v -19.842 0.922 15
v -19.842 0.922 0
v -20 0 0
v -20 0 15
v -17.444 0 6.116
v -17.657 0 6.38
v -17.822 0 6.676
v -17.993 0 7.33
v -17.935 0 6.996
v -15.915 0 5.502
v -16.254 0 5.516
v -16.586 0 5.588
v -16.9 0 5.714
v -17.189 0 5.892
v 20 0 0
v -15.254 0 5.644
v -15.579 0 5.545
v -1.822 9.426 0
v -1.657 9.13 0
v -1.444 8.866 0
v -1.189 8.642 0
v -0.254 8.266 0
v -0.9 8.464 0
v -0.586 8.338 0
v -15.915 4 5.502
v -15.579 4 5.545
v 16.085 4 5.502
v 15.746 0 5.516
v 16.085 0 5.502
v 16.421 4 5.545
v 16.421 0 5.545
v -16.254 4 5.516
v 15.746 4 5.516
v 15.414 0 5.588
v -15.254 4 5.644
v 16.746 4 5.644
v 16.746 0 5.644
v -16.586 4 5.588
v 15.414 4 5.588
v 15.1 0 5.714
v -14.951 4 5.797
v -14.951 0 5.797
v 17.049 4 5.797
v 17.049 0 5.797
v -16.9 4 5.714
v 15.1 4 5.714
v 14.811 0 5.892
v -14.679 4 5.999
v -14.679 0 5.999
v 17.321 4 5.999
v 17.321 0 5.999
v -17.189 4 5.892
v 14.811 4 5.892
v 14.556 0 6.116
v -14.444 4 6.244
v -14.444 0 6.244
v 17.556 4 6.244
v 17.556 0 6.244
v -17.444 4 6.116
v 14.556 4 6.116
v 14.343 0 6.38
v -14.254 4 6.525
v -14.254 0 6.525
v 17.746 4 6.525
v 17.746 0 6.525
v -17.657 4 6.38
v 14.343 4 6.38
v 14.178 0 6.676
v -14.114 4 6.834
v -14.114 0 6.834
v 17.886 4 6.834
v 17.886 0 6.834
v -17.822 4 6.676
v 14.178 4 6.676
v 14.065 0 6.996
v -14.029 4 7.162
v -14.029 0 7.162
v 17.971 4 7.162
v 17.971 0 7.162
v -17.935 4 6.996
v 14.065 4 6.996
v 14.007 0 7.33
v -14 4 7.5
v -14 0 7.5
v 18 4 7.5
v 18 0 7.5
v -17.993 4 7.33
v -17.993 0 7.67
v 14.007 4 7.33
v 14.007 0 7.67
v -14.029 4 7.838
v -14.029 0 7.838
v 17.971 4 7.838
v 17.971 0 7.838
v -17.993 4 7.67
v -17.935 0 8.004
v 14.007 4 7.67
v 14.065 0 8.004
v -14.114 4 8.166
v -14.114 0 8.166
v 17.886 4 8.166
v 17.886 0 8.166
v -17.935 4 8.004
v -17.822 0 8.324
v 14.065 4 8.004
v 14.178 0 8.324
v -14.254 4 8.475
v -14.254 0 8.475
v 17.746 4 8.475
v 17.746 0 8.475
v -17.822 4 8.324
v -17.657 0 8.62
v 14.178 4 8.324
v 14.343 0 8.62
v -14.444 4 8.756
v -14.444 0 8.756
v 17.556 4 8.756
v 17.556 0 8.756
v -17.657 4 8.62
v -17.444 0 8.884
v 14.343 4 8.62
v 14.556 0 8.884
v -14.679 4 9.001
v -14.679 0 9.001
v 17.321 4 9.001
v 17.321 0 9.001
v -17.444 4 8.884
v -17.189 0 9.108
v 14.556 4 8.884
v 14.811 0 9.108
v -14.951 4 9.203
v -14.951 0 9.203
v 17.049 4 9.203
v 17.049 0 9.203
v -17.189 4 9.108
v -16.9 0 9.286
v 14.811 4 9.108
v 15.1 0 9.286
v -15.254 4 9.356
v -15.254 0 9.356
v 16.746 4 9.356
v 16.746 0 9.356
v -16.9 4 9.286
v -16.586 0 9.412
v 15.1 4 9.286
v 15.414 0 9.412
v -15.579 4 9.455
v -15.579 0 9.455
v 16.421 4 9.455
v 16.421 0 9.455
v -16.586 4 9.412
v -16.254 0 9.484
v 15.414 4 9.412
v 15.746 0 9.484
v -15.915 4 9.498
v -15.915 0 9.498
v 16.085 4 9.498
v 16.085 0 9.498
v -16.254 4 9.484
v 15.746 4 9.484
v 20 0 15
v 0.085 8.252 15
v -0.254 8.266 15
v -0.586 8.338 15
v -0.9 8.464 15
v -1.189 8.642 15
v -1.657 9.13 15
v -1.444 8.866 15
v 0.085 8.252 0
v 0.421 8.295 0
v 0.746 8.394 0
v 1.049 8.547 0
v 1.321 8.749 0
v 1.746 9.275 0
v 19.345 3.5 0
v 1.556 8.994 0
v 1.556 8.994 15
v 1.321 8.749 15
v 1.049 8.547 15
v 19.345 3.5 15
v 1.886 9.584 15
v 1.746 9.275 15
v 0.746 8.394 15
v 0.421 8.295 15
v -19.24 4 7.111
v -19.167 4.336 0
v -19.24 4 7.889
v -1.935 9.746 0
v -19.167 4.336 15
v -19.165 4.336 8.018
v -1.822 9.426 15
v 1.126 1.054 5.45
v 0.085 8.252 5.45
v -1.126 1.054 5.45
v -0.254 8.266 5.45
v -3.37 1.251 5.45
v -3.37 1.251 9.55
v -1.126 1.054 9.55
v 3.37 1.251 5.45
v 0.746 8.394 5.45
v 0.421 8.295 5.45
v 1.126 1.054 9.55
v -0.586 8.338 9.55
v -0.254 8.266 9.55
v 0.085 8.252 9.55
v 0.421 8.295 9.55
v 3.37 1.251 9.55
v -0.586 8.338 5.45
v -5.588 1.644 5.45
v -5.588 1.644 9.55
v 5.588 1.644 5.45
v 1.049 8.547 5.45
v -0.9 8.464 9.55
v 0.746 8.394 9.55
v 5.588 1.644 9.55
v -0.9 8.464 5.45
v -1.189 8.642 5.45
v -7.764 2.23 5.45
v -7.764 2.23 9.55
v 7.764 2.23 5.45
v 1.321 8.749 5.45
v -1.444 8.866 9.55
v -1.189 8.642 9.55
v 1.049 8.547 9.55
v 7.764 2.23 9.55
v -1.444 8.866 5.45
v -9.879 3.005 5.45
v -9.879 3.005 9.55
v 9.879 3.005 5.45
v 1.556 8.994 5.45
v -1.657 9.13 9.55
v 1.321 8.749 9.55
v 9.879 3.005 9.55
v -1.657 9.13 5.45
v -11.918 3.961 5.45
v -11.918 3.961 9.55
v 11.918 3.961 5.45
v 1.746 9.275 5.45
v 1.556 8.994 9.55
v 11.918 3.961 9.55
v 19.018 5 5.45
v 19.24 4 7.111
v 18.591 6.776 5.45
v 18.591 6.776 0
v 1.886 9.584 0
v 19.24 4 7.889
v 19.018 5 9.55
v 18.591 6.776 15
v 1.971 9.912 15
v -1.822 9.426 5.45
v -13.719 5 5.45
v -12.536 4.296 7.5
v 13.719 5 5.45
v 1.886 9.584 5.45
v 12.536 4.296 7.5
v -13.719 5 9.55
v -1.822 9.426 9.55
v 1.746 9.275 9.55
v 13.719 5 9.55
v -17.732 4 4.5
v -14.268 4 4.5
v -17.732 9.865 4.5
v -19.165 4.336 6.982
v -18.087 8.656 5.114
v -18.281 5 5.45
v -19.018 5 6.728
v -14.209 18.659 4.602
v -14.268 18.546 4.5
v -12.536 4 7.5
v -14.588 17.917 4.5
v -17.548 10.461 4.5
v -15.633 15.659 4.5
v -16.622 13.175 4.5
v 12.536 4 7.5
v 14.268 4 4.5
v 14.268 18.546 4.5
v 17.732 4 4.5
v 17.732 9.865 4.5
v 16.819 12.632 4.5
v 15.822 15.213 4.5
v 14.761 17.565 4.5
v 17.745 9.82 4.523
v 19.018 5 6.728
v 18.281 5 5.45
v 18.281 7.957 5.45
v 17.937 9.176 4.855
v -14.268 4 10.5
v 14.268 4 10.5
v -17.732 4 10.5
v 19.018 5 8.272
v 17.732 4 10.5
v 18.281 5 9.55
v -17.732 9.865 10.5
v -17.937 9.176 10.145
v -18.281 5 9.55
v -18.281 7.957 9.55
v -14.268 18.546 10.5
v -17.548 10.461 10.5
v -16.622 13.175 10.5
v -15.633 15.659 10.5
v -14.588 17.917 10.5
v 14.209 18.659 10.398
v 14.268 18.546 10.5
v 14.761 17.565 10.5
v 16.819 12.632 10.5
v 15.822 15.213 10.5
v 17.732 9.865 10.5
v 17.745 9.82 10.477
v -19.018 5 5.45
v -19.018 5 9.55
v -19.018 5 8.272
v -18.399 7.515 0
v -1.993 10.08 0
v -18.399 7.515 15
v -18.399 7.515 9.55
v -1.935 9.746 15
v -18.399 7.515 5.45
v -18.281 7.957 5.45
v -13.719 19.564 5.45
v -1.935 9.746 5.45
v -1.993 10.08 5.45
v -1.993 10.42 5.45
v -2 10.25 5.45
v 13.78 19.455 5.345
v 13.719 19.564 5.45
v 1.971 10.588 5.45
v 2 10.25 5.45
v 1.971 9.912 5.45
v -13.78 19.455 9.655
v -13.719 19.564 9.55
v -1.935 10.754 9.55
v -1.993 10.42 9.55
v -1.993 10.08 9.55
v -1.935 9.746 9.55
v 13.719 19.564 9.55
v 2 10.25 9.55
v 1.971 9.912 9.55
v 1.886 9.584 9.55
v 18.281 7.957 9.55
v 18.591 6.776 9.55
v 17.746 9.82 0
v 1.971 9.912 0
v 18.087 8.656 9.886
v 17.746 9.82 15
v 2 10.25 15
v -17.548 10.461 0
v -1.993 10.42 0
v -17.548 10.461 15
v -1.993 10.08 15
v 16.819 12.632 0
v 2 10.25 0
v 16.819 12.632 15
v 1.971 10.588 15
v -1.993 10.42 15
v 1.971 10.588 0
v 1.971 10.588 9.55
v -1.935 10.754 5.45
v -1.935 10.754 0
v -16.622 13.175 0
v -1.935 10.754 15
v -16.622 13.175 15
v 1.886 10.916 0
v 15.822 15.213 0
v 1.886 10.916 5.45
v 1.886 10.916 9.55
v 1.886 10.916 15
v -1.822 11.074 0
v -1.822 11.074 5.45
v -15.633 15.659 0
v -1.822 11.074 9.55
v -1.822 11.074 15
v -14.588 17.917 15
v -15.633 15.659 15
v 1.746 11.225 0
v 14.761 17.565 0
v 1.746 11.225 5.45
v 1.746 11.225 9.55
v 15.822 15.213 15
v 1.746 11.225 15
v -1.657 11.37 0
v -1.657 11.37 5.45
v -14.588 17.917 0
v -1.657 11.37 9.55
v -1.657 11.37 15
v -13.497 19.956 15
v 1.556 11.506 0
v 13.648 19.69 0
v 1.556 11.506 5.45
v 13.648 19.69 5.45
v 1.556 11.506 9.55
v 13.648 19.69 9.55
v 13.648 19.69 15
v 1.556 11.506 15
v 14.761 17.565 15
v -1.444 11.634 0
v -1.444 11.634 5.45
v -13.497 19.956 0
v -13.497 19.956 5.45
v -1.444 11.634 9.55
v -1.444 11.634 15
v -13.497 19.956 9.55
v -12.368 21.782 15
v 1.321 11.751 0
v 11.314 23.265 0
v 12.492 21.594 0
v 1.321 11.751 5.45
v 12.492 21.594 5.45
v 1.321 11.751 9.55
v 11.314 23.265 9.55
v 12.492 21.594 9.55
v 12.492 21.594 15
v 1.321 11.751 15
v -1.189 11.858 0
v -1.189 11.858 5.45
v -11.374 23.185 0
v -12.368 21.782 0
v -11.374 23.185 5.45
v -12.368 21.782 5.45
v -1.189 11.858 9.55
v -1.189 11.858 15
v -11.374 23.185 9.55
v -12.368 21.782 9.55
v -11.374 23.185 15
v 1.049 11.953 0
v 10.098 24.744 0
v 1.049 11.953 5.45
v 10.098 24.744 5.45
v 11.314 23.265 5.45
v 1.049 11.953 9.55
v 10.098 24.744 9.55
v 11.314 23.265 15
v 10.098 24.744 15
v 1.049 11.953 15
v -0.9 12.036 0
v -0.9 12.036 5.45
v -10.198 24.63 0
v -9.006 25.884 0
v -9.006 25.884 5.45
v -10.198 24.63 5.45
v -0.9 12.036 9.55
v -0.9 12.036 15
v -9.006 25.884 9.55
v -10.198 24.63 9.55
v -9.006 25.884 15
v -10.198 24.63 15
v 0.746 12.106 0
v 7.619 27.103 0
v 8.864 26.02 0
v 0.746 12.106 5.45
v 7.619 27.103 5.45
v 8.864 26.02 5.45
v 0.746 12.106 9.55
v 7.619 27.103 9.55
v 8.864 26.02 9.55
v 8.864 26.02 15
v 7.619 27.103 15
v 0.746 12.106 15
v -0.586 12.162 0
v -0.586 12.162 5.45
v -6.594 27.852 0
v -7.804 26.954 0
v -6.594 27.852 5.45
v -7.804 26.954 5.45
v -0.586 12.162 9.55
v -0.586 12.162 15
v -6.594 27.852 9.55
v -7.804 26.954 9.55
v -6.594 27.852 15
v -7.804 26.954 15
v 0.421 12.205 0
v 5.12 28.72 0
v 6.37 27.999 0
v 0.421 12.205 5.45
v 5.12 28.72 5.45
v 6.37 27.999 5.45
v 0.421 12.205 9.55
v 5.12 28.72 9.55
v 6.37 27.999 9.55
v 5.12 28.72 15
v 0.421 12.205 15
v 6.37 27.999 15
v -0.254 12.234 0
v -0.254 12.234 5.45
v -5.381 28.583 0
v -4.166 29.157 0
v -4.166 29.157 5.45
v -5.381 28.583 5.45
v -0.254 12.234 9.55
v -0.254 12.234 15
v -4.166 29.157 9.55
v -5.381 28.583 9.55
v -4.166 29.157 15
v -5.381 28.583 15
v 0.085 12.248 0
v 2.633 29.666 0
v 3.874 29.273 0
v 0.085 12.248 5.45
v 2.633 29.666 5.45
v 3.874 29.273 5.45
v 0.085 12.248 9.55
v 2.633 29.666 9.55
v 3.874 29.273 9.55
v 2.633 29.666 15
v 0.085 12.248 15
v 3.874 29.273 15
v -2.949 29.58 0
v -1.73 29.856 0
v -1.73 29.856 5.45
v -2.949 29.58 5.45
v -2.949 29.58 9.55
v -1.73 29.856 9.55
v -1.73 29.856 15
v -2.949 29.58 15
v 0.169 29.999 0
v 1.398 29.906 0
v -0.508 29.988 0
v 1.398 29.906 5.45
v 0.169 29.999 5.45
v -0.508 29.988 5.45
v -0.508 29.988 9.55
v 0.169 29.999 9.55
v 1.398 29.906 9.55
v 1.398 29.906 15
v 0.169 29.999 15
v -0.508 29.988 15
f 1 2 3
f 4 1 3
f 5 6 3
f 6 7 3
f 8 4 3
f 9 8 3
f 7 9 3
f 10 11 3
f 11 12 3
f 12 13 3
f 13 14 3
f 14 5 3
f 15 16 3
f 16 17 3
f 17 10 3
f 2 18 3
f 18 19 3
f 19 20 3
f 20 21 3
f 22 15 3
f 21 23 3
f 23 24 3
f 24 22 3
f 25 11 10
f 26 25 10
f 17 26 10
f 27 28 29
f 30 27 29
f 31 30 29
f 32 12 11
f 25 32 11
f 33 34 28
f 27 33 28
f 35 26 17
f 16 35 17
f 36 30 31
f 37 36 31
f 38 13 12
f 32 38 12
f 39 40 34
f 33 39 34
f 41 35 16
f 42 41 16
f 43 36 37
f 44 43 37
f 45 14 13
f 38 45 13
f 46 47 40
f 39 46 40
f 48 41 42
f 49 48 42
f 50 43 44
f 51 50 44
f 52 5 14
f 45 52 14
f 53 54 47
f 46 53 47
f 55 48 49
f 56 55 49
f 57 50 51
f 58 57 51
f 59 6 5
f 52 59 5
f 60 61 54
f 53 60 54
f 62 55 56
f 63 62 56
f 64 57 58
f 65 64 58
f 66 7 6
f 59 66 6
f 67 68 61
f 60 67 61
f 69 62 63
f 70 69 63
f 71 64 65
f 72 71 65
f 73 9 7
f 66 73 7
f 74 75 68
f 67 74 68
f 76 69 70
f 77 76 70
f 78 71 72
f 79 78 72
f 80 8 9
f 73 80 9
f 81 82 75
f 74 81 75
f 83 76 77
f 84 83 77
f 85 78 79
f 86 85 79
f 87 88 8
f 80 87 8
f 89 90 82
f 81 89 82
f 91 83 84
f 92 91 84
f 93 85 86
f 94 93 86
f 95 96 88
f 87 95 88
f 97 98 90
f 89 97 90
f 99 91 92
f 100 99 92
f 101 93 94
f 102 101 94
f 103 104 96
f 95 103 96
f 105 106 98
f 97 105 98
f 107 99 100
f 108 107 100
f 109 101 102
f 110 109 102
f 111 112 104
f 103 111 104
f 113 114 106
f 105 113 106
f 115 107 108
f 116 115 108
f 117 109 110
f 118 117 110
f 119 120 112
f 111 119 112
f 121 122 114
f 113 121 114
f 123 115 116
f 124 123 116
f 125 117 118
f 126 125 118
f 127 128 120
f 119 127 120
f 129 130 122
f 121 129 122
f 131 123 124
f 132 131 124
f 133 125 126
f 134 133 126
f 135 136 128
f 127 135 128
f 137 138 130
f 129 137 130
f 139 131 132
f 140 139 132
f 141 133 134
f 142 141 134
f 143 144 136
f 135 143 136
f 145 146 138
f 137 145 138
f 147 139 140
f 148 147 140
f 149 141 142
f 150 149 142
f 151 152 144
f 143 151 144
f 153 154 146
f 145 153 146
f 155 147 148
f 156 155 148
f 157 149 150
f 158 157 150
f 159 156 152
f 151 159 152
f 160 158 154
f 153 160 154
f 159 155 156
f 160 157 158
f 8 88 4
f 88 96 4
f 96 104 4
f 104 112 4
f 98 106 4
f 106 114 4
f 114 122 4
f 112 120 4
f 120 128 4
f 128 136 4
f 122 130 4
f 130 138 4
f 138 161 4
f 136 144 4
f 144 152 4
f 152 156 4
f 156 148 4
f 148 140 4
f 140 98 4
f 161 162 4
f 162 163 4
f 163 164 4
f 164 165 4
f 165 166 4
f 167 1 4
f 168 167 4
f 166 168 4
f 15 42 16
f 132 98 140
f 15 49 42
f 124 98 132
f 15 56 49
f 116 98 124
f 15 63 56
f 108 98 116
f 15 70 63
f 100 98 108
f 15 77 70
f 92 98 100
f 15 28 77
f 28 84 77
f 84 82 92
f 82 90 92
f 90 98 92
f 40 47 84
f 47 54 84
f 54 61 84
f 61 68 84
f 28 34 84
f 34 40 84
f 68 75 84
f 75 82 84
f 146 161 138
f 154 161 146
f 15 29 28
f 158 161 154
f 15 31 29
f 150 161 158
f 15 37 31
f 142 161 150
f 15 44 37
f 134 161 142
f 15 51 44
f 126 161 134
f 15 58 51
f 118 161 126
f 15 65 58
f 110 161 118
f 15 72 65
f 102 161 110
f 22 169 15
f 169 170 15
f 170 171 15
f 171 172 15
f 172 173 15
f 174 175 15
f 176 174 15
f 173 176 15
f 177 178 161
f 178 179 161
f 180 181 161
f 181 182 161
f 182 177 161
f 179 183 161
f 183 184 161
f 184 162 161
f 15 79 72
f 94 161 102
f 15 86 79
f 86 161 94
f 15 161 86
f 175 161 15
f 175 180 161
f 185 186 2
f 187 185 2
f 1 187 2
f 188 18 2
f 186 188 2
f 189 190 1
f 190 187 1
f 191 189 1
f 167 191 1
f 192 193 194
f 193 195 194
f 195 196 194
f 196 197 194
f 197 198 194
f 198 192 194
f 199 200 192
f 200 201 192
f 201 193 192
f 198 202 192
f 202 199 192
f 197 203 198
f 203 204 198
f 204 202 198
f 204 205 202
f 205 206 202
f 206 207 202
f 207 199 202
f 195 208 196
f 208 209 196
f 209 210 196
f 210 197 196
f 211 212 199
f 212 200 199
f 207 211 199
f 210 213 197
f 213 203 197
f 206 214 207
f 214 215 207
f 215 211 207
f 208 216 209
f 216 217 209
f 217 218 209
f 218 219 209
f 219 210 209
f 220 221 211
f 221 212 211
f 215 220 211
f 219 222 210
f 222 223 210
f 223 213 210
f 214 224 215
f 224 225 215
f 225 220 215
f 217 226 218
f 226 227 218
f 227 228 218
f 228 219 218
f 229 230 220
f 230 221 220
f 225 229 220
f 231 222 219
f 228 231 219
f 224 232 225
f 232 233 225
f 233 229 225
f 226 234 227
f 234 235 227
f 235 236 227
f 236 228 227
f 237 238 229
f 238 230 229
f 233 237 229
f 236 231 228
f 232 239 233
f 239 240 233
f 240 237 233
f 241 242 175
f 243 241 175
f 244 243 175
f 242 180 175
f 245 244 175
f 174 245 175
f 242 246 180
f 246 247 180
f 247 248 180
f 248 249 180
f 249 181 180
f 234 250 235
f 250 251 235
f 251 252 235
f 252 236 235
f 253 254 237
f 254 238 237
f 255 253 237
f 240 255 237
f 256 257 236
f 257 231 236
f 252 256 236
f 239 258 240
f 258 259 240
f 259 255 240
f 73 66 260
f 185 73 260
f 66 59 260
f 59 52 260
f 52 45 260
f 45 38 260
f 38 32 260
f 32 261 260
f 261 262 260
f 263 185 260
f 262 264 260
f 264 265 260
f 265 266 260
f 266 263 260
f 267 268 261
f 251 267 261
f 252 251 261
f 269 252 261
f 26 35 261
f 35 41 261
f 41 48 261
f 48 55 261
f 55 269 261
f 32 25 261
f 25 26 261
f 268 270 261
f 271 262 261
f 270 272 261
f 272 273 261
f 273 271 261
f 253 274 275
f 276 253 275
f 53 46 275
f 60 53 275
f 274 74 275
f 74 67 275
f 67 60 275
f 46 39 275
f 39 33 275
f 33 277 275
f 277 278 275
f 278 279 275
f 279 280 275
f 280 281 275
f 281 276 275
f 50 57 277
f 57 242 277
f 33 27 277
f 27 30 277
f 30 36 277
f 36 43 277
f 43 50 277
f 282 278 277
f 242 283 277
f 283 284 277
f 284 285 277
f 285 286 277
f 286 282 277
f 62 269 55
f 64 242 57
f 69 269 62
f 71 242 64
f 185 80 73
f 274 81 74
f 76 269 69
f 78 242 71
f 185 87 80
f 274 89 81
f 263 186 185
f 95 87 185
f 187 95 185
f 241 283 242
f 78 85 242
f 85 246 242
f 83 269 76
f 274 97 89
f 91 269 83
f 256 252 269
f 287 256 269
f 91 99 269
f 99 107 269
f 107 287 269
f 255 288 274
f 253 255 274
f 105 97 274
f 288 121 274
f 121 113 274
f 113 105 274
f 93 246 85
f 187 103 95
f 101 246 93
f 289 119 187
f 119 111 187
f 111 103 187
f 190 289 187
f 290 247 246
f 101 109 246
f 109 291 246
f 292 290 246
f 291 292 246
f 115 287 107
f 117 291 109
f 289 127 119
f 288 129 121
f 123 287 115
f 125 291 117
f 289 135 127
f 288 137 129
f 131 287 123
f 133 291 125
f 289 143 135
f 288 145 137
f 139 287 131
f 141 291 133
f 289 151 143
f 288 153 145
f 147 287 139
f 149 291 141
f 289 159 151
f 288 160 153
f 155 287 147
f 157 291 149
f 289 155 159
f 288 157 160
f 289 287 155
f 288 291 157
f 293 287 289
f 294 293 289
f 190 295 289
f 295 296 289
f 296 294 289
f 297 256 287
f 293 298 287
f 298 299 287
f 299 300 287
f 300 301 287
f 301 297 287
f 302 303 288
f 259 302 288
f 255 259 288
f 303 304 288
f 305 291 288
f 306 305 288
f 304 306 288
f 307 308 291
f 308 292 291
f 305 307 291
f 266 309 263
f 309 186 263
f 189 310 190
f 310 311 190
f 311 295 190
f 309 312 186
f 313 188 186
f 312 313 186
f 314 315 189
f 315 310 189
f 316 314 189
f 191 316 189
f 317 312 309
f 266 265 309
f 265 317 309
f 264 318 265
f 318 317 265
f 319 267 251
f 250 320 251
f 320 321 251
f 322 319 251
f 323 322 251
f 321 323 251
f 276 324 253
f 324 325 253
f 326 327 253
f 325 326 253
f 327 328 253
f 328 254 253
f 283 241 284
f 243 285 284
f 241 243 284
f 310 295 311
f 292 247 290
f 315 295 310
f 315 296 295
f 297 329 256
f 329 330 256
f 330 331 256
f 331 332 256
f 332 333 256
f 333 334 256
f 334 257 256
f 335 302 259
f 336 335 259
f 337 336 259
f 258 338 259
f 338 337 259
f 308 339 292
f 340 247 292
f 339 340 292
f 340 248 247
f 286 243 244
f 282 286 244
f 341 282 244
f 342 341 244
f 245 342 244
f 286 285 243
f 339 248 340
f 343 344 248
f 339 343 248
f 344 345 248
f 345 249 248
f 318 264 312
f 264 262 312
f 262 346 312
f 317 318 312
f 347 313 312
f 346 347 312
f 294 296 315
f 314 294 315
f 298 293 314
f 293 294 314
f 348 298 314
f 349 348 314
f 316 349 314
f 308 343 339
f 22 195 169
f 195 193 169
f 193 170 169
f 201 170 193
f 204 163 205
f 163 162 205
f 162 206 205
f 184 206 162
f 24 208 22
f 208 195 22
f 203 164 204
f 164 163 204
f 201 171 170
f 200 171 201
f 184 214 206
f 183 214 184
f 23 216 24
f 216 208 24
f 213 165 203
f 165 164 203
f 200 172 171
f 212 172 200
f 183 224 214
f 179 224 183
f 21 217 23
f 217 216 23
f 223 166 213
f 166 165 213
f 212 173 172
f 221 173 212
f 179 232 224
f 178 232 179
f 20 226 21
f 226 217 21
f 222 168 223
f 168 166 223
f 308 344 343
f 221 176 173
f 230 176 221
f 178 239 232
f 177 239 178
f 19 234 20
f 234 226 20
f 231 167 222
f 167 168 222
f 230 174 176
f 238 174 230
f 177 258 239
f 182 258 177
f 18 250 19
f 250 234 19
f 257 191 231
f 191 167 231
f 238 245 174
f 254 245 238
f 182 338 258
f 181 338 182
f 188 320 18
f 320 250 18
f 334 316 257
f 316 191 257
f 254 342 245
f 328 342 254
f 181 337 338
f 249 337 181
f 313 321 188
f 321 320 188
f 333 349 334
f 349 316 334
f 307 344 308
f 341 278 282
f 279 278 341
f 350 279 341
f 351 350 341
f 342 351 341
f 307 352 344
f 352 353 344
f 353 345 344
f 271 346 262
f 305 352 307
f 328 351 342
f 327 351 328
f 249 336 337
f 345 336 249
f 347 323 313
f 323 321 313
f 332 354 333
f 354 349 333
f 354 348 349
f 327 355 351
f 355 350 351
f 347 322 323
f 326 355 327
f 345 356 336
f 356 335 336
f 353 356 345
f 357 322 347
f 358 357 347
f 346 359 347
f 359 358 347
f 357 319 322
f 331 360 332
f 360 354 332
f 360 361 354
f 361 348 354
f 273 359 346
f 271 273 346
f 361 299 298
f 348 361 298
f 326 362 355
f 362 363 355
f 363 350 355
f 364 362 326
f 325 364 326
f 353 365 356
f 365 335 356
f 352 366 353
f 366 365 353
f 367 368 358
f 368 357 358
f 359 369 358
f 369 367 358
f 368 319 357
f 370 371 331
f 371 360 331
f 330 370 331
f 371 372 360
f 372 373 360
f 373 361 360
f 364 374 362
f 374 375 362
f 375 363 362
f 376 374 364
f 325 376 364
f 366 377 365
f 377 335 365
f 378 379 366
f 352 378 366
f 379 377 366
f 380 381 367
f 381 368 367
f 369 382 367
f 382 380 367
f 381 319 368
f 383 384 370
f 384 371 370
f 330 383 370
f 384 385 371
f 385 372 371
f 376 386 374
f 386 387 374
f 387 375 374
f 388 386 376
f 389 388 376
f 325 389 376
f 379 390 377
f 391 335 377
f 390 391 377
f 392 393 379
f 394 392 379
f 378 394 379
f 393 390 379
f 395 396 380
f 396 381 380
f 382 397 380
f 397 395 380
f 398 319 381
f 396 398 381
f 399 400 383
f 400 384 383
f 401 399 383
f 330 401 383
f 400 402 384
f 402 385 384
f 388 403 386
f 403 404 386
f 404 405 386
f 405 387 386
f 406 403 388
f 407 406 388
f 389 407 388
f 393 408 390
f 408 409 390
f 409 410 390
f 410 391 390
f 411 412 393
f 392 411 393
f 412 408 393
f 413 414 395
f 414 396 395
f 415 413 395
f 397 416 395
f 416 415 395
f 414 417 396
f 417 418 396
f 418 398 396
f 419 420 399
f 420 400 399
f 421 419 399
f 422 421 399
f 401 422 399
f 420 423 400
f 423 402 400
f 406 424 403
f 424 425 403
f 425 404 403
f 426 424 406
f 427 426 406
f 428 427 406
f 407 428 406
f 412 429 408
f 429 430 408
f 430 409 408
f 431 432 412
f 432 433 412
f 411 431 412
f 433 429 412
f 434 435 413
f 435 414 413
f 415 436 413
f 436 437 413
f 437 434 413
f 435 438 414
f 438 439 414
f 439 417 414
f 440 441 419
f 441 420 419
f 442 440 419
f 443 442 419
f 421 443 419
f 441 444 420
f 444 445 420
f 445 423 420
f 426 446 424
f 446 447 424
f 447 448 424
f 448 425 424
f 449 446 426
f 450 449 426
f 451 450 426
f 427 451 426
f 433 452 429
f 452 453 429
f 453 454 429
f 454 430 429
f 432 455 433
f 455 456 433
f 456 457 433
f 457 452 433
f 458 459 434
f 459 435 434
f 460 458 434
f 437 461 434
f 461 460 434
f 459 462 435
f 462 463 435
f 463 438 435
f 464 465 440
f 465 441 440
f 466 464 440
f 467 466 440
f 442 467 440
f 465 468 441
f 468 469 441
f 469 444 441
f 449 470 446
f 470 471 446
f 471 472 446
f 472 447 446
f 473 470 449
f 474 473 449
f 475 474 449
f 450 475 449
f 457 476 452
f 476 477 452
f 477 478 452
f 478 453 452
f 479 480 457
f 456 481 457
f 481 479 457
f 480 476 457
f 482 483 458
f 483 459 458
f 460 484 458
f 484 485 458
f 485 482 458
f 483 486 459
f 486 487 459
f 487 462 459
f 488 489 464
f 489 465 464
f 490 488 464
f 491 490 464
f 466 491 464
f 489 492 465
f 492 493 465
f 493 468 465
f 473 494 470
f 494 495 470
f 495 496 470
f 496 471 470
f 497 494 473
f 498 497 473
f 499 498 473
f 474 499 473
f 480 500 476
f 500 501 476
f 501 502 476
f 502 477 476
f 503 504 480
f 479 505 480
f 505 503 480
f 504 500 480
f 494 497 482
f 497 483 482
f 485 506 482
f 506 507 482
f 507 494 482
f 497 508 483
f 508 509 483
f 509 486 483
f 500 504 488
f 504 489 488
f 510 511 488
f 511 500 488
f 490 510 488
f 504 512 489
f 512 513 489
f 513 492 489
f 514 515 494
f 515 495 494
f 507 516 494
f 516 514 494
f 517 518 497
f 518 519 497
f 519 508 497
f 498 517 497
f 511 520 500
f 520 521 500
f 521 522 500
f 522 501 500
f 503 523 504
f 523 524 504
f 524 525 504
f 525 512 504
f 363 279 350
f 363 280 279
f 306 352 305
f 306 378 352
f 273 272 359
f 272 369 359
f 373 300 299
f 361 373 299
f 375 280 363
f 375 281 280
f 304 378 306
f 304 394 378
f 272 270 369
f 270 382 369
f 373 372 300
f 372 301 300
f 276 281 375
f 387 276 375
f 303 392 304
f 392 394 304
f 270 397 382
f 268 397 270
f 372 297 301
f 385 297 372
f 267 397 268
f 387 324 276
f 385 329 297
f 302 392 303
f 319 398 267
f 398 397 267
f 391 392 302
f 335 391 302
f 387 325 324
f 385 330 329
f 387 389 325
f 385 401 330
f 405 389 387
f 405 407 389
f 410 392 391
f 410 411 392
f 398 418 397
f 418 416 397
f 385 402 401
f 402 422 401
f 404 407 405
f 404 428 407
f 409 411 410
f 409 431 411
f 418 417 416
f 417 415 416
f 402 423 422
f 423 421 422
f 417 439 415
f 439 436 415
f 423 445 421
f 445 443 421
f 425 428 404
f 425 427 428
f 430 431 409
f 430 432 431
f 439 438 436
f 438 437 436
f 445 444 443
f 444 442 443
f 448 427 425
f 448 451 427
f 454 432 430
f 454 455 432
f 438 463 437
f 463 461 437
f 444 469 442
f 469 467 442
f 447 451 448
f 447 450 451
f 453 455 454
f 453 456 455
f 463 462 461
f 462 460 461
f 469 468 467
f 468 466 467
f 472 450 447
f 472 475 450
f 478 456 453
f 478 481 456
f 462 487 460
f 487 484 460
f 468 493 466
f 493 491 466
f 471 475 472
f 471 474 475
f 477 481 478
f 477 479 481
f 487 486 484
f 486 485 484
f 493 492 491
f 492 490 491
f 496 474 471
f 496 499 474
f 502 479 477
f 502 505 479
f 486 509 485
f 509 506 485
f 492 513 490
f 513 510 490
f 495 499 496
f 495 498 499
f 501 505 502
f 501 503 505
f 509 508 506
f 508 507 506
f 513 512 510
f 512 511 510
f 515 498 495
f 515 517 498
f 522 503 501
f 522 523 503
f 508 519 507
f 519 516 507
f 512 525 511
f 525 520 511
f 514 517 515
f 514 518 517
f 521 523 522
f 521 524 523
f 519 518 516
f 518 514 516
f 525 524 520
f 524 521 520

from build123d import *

# Parameters (mm, degrees)
BOSS_EXTRUDE1_DEPTH = 15
CUT_EXTRUDE1_REACH  = 41.051
SKETCH2_R           = 2
CUT_EXTRUDE2_REACH  = 38.069
SKETCH4_R           = 2
CUT_EXTRUDE3_DEPTH  = 15
SKETCH5_W           = 40
SKETCH5_H           = 4.1
CUT_EXTRUDE4_DEPTH  = 26
CUT_EXTRUDE6_REACH  = 39.299


with BuildPart() as part:
    # Sketch1 → Boss-Extrude1 (new body)
    with BuildSketch(Plane.XY):
        with BuildLine():
            Line((-20, 0), (20, 0))
            add(Edge.make_bspline(
                [(-20, 0), (-15, 30), (0, 40), (15, 30), (20, 0)],
                knots=[0, 0, 0, 0, 0, 1, 1, 1, 1, 1], degree=4))
        make_face()
    extrude(amount=BOSS_EXTRUDE1_DEPTH)

    # Sketch2 → Cut-Extrude1 (cut, up to next)
    with BuildSketch(Plane.XZ, mode=Mode.PRIVATE) as cut_extrude1_sk1:
        with Locations((16, 7.5)):
            Circle(SKETCH2_R)
    cut_extrude1_tool1 = extrude(cut_extrude1_sk1.sketch, amount=-CUT_EXTRUDE1_REACH, mode=Mode.PRIVATE) & part.part
    # Sketch2 → Cut-Extrude1 (cut, up to next)
    with BuildSketch(Plane.XZ, mode=Mode.PRIVATE) as cut_extrude1_sk2:
        with Locations((-16, 7.5)):
            Circle(SKETCH2_R)
    cut_extrude1_tool2 = extrude(cut_extrude1_sk2.sketch, amount=-CUT_EXTRUDE1_REACH, mode=Mode.PRIVATE) & part.part
    add(cut_extrude1_tool1.solids().sort_by_distance((16, 0, 7.5))[0], mode=Mode.SUBTRACT)
    add(cut_extrude1_tool2.solids().sort_by_distance((-16, 0, 7.5))[0], mode=Mode.SUBTRACT)

    # Sketch3 → Cut-Extrude2 (cut, up to next)
    with BuildSketch(Plane(origin=(0, 4, 0), x_dir=(-1, 0, 0), z_dir=(0, -1, 0)), mode=Mode.PRIVATE) as cut_extrude2_sk1:
        Polygon((17.732050808, -4.5), (14.267949192, -4.5), (12.535898385, -7.5), (14.267949192, -10.5), (17.732050808, -10.5), (19.464101615, -7.5), align=None)
    cut_extrude2_tool1 = extrude(cut_extrude2_sk1.sketch, amount=-CUT_EXTRUDE2_REACH, mode=Mode.PRIVATE) & part.part
    # Sketch3 → Cut-Extrude2 (cut, up to next)
    with BuildSketch(Plane(origin=(0, 4, 0), x_dir=(-1, 0, 0), z_dir=(0, -1, 0)), mode=Mode.PRIVATE) as cut_extrude2_sk2:
        Polygon((-17.732050808, -4.5), (-19.464101615, -7.5), (-17.732050808, -10.5), (-14.267949192, -10.5), (-12.535898385, -7.5), (-14.267949192, -4.5), align=None)
    cut_extrude2_tool2 = extrude(cut_extrude2_sk2.sketch, amount=-CUT_EXTRUDE2_REACH, mode=Mode.PRIVATE) & part.part
    add(cut_extrude2_tool1.solids().sort_by_distance((-16, 4, 7.5))[0], mode=Mode.SUBTRACT)
    add(cut_extrude2_tool2.solids().sort_by_distance((16, 4, 7.5))[0], mode=Mode.SUBTRACT)

    # Sketch4 → Cut-Extrude3 (cut)
    with BuildSketch(Plane.XY.offset(15)):
        with Locations((0, 10.25)):
            Circle(SKETCH4_R)
    extrude(amount=-CUT_EXTRUDE3_DEPTH, mode=Mode.SUBTRACT)

    # Sketch5 → Cut-Extrude4 (cut)
    with BuildSketch(Plane(origin=(0, 31, 0), x_dir=(1, 0, 0), z_dir=(0, 1, 0))):
        with Locations((0, -7.5)):
            Rectangle(SKETCH5_W, SKETCH5_H)
    extrude(amount=-CUT_EXTRUDE4_DEPTH, mode=Mode.SUBTRACT)

    # Cut-Extrude6: up to this face of the body (flat: up to its plane)
    cut_extrude6_end = Plane(part.part.faces().sort_by_distance((3.91e-07, 16.202361225, 5.45))[0])
    # Sketch7 → Cut-Extrude6 (cut, up to the picked face)
    with BuildSketch(Plane(origin=(0, 0, 9.55), x_dir=(-1, 0, 0), z_dir=(0, 0, -1)), mode=Mode.PRIVATE) as cut_extrude6_sk1:
        with BuildLine():
            Line((13.719466437, 5), (13.719466437, 6.244656836))
            Line((13.719466437, 6.244656836), (-13.719466437, 6.244656836))
            Line((-13.719466437, 6.244656836), (-13.719466437, 5))
            ThreePointArc((-13.719466437, 5), (0, 1.028956083), (13.719466437, 5))
        make_face()
    cut_extrude6_tool1 = split(extrude(cut_extrude6_sk1.sketch, amount=CUT_EXTRUDE6_REACH, mode=Mode.PRIVATE), bisect_by=cut_extrude6_end, keep=Keep.BOTH, mode=Mode.PRIVATE)
    add(cut_extrude6_tool1.solids().sort_by(Axis((0, 4.103163, 9.55), (0, 0, -1)))[0], mode=Mode.SUBTRACT)


solid = part.part
